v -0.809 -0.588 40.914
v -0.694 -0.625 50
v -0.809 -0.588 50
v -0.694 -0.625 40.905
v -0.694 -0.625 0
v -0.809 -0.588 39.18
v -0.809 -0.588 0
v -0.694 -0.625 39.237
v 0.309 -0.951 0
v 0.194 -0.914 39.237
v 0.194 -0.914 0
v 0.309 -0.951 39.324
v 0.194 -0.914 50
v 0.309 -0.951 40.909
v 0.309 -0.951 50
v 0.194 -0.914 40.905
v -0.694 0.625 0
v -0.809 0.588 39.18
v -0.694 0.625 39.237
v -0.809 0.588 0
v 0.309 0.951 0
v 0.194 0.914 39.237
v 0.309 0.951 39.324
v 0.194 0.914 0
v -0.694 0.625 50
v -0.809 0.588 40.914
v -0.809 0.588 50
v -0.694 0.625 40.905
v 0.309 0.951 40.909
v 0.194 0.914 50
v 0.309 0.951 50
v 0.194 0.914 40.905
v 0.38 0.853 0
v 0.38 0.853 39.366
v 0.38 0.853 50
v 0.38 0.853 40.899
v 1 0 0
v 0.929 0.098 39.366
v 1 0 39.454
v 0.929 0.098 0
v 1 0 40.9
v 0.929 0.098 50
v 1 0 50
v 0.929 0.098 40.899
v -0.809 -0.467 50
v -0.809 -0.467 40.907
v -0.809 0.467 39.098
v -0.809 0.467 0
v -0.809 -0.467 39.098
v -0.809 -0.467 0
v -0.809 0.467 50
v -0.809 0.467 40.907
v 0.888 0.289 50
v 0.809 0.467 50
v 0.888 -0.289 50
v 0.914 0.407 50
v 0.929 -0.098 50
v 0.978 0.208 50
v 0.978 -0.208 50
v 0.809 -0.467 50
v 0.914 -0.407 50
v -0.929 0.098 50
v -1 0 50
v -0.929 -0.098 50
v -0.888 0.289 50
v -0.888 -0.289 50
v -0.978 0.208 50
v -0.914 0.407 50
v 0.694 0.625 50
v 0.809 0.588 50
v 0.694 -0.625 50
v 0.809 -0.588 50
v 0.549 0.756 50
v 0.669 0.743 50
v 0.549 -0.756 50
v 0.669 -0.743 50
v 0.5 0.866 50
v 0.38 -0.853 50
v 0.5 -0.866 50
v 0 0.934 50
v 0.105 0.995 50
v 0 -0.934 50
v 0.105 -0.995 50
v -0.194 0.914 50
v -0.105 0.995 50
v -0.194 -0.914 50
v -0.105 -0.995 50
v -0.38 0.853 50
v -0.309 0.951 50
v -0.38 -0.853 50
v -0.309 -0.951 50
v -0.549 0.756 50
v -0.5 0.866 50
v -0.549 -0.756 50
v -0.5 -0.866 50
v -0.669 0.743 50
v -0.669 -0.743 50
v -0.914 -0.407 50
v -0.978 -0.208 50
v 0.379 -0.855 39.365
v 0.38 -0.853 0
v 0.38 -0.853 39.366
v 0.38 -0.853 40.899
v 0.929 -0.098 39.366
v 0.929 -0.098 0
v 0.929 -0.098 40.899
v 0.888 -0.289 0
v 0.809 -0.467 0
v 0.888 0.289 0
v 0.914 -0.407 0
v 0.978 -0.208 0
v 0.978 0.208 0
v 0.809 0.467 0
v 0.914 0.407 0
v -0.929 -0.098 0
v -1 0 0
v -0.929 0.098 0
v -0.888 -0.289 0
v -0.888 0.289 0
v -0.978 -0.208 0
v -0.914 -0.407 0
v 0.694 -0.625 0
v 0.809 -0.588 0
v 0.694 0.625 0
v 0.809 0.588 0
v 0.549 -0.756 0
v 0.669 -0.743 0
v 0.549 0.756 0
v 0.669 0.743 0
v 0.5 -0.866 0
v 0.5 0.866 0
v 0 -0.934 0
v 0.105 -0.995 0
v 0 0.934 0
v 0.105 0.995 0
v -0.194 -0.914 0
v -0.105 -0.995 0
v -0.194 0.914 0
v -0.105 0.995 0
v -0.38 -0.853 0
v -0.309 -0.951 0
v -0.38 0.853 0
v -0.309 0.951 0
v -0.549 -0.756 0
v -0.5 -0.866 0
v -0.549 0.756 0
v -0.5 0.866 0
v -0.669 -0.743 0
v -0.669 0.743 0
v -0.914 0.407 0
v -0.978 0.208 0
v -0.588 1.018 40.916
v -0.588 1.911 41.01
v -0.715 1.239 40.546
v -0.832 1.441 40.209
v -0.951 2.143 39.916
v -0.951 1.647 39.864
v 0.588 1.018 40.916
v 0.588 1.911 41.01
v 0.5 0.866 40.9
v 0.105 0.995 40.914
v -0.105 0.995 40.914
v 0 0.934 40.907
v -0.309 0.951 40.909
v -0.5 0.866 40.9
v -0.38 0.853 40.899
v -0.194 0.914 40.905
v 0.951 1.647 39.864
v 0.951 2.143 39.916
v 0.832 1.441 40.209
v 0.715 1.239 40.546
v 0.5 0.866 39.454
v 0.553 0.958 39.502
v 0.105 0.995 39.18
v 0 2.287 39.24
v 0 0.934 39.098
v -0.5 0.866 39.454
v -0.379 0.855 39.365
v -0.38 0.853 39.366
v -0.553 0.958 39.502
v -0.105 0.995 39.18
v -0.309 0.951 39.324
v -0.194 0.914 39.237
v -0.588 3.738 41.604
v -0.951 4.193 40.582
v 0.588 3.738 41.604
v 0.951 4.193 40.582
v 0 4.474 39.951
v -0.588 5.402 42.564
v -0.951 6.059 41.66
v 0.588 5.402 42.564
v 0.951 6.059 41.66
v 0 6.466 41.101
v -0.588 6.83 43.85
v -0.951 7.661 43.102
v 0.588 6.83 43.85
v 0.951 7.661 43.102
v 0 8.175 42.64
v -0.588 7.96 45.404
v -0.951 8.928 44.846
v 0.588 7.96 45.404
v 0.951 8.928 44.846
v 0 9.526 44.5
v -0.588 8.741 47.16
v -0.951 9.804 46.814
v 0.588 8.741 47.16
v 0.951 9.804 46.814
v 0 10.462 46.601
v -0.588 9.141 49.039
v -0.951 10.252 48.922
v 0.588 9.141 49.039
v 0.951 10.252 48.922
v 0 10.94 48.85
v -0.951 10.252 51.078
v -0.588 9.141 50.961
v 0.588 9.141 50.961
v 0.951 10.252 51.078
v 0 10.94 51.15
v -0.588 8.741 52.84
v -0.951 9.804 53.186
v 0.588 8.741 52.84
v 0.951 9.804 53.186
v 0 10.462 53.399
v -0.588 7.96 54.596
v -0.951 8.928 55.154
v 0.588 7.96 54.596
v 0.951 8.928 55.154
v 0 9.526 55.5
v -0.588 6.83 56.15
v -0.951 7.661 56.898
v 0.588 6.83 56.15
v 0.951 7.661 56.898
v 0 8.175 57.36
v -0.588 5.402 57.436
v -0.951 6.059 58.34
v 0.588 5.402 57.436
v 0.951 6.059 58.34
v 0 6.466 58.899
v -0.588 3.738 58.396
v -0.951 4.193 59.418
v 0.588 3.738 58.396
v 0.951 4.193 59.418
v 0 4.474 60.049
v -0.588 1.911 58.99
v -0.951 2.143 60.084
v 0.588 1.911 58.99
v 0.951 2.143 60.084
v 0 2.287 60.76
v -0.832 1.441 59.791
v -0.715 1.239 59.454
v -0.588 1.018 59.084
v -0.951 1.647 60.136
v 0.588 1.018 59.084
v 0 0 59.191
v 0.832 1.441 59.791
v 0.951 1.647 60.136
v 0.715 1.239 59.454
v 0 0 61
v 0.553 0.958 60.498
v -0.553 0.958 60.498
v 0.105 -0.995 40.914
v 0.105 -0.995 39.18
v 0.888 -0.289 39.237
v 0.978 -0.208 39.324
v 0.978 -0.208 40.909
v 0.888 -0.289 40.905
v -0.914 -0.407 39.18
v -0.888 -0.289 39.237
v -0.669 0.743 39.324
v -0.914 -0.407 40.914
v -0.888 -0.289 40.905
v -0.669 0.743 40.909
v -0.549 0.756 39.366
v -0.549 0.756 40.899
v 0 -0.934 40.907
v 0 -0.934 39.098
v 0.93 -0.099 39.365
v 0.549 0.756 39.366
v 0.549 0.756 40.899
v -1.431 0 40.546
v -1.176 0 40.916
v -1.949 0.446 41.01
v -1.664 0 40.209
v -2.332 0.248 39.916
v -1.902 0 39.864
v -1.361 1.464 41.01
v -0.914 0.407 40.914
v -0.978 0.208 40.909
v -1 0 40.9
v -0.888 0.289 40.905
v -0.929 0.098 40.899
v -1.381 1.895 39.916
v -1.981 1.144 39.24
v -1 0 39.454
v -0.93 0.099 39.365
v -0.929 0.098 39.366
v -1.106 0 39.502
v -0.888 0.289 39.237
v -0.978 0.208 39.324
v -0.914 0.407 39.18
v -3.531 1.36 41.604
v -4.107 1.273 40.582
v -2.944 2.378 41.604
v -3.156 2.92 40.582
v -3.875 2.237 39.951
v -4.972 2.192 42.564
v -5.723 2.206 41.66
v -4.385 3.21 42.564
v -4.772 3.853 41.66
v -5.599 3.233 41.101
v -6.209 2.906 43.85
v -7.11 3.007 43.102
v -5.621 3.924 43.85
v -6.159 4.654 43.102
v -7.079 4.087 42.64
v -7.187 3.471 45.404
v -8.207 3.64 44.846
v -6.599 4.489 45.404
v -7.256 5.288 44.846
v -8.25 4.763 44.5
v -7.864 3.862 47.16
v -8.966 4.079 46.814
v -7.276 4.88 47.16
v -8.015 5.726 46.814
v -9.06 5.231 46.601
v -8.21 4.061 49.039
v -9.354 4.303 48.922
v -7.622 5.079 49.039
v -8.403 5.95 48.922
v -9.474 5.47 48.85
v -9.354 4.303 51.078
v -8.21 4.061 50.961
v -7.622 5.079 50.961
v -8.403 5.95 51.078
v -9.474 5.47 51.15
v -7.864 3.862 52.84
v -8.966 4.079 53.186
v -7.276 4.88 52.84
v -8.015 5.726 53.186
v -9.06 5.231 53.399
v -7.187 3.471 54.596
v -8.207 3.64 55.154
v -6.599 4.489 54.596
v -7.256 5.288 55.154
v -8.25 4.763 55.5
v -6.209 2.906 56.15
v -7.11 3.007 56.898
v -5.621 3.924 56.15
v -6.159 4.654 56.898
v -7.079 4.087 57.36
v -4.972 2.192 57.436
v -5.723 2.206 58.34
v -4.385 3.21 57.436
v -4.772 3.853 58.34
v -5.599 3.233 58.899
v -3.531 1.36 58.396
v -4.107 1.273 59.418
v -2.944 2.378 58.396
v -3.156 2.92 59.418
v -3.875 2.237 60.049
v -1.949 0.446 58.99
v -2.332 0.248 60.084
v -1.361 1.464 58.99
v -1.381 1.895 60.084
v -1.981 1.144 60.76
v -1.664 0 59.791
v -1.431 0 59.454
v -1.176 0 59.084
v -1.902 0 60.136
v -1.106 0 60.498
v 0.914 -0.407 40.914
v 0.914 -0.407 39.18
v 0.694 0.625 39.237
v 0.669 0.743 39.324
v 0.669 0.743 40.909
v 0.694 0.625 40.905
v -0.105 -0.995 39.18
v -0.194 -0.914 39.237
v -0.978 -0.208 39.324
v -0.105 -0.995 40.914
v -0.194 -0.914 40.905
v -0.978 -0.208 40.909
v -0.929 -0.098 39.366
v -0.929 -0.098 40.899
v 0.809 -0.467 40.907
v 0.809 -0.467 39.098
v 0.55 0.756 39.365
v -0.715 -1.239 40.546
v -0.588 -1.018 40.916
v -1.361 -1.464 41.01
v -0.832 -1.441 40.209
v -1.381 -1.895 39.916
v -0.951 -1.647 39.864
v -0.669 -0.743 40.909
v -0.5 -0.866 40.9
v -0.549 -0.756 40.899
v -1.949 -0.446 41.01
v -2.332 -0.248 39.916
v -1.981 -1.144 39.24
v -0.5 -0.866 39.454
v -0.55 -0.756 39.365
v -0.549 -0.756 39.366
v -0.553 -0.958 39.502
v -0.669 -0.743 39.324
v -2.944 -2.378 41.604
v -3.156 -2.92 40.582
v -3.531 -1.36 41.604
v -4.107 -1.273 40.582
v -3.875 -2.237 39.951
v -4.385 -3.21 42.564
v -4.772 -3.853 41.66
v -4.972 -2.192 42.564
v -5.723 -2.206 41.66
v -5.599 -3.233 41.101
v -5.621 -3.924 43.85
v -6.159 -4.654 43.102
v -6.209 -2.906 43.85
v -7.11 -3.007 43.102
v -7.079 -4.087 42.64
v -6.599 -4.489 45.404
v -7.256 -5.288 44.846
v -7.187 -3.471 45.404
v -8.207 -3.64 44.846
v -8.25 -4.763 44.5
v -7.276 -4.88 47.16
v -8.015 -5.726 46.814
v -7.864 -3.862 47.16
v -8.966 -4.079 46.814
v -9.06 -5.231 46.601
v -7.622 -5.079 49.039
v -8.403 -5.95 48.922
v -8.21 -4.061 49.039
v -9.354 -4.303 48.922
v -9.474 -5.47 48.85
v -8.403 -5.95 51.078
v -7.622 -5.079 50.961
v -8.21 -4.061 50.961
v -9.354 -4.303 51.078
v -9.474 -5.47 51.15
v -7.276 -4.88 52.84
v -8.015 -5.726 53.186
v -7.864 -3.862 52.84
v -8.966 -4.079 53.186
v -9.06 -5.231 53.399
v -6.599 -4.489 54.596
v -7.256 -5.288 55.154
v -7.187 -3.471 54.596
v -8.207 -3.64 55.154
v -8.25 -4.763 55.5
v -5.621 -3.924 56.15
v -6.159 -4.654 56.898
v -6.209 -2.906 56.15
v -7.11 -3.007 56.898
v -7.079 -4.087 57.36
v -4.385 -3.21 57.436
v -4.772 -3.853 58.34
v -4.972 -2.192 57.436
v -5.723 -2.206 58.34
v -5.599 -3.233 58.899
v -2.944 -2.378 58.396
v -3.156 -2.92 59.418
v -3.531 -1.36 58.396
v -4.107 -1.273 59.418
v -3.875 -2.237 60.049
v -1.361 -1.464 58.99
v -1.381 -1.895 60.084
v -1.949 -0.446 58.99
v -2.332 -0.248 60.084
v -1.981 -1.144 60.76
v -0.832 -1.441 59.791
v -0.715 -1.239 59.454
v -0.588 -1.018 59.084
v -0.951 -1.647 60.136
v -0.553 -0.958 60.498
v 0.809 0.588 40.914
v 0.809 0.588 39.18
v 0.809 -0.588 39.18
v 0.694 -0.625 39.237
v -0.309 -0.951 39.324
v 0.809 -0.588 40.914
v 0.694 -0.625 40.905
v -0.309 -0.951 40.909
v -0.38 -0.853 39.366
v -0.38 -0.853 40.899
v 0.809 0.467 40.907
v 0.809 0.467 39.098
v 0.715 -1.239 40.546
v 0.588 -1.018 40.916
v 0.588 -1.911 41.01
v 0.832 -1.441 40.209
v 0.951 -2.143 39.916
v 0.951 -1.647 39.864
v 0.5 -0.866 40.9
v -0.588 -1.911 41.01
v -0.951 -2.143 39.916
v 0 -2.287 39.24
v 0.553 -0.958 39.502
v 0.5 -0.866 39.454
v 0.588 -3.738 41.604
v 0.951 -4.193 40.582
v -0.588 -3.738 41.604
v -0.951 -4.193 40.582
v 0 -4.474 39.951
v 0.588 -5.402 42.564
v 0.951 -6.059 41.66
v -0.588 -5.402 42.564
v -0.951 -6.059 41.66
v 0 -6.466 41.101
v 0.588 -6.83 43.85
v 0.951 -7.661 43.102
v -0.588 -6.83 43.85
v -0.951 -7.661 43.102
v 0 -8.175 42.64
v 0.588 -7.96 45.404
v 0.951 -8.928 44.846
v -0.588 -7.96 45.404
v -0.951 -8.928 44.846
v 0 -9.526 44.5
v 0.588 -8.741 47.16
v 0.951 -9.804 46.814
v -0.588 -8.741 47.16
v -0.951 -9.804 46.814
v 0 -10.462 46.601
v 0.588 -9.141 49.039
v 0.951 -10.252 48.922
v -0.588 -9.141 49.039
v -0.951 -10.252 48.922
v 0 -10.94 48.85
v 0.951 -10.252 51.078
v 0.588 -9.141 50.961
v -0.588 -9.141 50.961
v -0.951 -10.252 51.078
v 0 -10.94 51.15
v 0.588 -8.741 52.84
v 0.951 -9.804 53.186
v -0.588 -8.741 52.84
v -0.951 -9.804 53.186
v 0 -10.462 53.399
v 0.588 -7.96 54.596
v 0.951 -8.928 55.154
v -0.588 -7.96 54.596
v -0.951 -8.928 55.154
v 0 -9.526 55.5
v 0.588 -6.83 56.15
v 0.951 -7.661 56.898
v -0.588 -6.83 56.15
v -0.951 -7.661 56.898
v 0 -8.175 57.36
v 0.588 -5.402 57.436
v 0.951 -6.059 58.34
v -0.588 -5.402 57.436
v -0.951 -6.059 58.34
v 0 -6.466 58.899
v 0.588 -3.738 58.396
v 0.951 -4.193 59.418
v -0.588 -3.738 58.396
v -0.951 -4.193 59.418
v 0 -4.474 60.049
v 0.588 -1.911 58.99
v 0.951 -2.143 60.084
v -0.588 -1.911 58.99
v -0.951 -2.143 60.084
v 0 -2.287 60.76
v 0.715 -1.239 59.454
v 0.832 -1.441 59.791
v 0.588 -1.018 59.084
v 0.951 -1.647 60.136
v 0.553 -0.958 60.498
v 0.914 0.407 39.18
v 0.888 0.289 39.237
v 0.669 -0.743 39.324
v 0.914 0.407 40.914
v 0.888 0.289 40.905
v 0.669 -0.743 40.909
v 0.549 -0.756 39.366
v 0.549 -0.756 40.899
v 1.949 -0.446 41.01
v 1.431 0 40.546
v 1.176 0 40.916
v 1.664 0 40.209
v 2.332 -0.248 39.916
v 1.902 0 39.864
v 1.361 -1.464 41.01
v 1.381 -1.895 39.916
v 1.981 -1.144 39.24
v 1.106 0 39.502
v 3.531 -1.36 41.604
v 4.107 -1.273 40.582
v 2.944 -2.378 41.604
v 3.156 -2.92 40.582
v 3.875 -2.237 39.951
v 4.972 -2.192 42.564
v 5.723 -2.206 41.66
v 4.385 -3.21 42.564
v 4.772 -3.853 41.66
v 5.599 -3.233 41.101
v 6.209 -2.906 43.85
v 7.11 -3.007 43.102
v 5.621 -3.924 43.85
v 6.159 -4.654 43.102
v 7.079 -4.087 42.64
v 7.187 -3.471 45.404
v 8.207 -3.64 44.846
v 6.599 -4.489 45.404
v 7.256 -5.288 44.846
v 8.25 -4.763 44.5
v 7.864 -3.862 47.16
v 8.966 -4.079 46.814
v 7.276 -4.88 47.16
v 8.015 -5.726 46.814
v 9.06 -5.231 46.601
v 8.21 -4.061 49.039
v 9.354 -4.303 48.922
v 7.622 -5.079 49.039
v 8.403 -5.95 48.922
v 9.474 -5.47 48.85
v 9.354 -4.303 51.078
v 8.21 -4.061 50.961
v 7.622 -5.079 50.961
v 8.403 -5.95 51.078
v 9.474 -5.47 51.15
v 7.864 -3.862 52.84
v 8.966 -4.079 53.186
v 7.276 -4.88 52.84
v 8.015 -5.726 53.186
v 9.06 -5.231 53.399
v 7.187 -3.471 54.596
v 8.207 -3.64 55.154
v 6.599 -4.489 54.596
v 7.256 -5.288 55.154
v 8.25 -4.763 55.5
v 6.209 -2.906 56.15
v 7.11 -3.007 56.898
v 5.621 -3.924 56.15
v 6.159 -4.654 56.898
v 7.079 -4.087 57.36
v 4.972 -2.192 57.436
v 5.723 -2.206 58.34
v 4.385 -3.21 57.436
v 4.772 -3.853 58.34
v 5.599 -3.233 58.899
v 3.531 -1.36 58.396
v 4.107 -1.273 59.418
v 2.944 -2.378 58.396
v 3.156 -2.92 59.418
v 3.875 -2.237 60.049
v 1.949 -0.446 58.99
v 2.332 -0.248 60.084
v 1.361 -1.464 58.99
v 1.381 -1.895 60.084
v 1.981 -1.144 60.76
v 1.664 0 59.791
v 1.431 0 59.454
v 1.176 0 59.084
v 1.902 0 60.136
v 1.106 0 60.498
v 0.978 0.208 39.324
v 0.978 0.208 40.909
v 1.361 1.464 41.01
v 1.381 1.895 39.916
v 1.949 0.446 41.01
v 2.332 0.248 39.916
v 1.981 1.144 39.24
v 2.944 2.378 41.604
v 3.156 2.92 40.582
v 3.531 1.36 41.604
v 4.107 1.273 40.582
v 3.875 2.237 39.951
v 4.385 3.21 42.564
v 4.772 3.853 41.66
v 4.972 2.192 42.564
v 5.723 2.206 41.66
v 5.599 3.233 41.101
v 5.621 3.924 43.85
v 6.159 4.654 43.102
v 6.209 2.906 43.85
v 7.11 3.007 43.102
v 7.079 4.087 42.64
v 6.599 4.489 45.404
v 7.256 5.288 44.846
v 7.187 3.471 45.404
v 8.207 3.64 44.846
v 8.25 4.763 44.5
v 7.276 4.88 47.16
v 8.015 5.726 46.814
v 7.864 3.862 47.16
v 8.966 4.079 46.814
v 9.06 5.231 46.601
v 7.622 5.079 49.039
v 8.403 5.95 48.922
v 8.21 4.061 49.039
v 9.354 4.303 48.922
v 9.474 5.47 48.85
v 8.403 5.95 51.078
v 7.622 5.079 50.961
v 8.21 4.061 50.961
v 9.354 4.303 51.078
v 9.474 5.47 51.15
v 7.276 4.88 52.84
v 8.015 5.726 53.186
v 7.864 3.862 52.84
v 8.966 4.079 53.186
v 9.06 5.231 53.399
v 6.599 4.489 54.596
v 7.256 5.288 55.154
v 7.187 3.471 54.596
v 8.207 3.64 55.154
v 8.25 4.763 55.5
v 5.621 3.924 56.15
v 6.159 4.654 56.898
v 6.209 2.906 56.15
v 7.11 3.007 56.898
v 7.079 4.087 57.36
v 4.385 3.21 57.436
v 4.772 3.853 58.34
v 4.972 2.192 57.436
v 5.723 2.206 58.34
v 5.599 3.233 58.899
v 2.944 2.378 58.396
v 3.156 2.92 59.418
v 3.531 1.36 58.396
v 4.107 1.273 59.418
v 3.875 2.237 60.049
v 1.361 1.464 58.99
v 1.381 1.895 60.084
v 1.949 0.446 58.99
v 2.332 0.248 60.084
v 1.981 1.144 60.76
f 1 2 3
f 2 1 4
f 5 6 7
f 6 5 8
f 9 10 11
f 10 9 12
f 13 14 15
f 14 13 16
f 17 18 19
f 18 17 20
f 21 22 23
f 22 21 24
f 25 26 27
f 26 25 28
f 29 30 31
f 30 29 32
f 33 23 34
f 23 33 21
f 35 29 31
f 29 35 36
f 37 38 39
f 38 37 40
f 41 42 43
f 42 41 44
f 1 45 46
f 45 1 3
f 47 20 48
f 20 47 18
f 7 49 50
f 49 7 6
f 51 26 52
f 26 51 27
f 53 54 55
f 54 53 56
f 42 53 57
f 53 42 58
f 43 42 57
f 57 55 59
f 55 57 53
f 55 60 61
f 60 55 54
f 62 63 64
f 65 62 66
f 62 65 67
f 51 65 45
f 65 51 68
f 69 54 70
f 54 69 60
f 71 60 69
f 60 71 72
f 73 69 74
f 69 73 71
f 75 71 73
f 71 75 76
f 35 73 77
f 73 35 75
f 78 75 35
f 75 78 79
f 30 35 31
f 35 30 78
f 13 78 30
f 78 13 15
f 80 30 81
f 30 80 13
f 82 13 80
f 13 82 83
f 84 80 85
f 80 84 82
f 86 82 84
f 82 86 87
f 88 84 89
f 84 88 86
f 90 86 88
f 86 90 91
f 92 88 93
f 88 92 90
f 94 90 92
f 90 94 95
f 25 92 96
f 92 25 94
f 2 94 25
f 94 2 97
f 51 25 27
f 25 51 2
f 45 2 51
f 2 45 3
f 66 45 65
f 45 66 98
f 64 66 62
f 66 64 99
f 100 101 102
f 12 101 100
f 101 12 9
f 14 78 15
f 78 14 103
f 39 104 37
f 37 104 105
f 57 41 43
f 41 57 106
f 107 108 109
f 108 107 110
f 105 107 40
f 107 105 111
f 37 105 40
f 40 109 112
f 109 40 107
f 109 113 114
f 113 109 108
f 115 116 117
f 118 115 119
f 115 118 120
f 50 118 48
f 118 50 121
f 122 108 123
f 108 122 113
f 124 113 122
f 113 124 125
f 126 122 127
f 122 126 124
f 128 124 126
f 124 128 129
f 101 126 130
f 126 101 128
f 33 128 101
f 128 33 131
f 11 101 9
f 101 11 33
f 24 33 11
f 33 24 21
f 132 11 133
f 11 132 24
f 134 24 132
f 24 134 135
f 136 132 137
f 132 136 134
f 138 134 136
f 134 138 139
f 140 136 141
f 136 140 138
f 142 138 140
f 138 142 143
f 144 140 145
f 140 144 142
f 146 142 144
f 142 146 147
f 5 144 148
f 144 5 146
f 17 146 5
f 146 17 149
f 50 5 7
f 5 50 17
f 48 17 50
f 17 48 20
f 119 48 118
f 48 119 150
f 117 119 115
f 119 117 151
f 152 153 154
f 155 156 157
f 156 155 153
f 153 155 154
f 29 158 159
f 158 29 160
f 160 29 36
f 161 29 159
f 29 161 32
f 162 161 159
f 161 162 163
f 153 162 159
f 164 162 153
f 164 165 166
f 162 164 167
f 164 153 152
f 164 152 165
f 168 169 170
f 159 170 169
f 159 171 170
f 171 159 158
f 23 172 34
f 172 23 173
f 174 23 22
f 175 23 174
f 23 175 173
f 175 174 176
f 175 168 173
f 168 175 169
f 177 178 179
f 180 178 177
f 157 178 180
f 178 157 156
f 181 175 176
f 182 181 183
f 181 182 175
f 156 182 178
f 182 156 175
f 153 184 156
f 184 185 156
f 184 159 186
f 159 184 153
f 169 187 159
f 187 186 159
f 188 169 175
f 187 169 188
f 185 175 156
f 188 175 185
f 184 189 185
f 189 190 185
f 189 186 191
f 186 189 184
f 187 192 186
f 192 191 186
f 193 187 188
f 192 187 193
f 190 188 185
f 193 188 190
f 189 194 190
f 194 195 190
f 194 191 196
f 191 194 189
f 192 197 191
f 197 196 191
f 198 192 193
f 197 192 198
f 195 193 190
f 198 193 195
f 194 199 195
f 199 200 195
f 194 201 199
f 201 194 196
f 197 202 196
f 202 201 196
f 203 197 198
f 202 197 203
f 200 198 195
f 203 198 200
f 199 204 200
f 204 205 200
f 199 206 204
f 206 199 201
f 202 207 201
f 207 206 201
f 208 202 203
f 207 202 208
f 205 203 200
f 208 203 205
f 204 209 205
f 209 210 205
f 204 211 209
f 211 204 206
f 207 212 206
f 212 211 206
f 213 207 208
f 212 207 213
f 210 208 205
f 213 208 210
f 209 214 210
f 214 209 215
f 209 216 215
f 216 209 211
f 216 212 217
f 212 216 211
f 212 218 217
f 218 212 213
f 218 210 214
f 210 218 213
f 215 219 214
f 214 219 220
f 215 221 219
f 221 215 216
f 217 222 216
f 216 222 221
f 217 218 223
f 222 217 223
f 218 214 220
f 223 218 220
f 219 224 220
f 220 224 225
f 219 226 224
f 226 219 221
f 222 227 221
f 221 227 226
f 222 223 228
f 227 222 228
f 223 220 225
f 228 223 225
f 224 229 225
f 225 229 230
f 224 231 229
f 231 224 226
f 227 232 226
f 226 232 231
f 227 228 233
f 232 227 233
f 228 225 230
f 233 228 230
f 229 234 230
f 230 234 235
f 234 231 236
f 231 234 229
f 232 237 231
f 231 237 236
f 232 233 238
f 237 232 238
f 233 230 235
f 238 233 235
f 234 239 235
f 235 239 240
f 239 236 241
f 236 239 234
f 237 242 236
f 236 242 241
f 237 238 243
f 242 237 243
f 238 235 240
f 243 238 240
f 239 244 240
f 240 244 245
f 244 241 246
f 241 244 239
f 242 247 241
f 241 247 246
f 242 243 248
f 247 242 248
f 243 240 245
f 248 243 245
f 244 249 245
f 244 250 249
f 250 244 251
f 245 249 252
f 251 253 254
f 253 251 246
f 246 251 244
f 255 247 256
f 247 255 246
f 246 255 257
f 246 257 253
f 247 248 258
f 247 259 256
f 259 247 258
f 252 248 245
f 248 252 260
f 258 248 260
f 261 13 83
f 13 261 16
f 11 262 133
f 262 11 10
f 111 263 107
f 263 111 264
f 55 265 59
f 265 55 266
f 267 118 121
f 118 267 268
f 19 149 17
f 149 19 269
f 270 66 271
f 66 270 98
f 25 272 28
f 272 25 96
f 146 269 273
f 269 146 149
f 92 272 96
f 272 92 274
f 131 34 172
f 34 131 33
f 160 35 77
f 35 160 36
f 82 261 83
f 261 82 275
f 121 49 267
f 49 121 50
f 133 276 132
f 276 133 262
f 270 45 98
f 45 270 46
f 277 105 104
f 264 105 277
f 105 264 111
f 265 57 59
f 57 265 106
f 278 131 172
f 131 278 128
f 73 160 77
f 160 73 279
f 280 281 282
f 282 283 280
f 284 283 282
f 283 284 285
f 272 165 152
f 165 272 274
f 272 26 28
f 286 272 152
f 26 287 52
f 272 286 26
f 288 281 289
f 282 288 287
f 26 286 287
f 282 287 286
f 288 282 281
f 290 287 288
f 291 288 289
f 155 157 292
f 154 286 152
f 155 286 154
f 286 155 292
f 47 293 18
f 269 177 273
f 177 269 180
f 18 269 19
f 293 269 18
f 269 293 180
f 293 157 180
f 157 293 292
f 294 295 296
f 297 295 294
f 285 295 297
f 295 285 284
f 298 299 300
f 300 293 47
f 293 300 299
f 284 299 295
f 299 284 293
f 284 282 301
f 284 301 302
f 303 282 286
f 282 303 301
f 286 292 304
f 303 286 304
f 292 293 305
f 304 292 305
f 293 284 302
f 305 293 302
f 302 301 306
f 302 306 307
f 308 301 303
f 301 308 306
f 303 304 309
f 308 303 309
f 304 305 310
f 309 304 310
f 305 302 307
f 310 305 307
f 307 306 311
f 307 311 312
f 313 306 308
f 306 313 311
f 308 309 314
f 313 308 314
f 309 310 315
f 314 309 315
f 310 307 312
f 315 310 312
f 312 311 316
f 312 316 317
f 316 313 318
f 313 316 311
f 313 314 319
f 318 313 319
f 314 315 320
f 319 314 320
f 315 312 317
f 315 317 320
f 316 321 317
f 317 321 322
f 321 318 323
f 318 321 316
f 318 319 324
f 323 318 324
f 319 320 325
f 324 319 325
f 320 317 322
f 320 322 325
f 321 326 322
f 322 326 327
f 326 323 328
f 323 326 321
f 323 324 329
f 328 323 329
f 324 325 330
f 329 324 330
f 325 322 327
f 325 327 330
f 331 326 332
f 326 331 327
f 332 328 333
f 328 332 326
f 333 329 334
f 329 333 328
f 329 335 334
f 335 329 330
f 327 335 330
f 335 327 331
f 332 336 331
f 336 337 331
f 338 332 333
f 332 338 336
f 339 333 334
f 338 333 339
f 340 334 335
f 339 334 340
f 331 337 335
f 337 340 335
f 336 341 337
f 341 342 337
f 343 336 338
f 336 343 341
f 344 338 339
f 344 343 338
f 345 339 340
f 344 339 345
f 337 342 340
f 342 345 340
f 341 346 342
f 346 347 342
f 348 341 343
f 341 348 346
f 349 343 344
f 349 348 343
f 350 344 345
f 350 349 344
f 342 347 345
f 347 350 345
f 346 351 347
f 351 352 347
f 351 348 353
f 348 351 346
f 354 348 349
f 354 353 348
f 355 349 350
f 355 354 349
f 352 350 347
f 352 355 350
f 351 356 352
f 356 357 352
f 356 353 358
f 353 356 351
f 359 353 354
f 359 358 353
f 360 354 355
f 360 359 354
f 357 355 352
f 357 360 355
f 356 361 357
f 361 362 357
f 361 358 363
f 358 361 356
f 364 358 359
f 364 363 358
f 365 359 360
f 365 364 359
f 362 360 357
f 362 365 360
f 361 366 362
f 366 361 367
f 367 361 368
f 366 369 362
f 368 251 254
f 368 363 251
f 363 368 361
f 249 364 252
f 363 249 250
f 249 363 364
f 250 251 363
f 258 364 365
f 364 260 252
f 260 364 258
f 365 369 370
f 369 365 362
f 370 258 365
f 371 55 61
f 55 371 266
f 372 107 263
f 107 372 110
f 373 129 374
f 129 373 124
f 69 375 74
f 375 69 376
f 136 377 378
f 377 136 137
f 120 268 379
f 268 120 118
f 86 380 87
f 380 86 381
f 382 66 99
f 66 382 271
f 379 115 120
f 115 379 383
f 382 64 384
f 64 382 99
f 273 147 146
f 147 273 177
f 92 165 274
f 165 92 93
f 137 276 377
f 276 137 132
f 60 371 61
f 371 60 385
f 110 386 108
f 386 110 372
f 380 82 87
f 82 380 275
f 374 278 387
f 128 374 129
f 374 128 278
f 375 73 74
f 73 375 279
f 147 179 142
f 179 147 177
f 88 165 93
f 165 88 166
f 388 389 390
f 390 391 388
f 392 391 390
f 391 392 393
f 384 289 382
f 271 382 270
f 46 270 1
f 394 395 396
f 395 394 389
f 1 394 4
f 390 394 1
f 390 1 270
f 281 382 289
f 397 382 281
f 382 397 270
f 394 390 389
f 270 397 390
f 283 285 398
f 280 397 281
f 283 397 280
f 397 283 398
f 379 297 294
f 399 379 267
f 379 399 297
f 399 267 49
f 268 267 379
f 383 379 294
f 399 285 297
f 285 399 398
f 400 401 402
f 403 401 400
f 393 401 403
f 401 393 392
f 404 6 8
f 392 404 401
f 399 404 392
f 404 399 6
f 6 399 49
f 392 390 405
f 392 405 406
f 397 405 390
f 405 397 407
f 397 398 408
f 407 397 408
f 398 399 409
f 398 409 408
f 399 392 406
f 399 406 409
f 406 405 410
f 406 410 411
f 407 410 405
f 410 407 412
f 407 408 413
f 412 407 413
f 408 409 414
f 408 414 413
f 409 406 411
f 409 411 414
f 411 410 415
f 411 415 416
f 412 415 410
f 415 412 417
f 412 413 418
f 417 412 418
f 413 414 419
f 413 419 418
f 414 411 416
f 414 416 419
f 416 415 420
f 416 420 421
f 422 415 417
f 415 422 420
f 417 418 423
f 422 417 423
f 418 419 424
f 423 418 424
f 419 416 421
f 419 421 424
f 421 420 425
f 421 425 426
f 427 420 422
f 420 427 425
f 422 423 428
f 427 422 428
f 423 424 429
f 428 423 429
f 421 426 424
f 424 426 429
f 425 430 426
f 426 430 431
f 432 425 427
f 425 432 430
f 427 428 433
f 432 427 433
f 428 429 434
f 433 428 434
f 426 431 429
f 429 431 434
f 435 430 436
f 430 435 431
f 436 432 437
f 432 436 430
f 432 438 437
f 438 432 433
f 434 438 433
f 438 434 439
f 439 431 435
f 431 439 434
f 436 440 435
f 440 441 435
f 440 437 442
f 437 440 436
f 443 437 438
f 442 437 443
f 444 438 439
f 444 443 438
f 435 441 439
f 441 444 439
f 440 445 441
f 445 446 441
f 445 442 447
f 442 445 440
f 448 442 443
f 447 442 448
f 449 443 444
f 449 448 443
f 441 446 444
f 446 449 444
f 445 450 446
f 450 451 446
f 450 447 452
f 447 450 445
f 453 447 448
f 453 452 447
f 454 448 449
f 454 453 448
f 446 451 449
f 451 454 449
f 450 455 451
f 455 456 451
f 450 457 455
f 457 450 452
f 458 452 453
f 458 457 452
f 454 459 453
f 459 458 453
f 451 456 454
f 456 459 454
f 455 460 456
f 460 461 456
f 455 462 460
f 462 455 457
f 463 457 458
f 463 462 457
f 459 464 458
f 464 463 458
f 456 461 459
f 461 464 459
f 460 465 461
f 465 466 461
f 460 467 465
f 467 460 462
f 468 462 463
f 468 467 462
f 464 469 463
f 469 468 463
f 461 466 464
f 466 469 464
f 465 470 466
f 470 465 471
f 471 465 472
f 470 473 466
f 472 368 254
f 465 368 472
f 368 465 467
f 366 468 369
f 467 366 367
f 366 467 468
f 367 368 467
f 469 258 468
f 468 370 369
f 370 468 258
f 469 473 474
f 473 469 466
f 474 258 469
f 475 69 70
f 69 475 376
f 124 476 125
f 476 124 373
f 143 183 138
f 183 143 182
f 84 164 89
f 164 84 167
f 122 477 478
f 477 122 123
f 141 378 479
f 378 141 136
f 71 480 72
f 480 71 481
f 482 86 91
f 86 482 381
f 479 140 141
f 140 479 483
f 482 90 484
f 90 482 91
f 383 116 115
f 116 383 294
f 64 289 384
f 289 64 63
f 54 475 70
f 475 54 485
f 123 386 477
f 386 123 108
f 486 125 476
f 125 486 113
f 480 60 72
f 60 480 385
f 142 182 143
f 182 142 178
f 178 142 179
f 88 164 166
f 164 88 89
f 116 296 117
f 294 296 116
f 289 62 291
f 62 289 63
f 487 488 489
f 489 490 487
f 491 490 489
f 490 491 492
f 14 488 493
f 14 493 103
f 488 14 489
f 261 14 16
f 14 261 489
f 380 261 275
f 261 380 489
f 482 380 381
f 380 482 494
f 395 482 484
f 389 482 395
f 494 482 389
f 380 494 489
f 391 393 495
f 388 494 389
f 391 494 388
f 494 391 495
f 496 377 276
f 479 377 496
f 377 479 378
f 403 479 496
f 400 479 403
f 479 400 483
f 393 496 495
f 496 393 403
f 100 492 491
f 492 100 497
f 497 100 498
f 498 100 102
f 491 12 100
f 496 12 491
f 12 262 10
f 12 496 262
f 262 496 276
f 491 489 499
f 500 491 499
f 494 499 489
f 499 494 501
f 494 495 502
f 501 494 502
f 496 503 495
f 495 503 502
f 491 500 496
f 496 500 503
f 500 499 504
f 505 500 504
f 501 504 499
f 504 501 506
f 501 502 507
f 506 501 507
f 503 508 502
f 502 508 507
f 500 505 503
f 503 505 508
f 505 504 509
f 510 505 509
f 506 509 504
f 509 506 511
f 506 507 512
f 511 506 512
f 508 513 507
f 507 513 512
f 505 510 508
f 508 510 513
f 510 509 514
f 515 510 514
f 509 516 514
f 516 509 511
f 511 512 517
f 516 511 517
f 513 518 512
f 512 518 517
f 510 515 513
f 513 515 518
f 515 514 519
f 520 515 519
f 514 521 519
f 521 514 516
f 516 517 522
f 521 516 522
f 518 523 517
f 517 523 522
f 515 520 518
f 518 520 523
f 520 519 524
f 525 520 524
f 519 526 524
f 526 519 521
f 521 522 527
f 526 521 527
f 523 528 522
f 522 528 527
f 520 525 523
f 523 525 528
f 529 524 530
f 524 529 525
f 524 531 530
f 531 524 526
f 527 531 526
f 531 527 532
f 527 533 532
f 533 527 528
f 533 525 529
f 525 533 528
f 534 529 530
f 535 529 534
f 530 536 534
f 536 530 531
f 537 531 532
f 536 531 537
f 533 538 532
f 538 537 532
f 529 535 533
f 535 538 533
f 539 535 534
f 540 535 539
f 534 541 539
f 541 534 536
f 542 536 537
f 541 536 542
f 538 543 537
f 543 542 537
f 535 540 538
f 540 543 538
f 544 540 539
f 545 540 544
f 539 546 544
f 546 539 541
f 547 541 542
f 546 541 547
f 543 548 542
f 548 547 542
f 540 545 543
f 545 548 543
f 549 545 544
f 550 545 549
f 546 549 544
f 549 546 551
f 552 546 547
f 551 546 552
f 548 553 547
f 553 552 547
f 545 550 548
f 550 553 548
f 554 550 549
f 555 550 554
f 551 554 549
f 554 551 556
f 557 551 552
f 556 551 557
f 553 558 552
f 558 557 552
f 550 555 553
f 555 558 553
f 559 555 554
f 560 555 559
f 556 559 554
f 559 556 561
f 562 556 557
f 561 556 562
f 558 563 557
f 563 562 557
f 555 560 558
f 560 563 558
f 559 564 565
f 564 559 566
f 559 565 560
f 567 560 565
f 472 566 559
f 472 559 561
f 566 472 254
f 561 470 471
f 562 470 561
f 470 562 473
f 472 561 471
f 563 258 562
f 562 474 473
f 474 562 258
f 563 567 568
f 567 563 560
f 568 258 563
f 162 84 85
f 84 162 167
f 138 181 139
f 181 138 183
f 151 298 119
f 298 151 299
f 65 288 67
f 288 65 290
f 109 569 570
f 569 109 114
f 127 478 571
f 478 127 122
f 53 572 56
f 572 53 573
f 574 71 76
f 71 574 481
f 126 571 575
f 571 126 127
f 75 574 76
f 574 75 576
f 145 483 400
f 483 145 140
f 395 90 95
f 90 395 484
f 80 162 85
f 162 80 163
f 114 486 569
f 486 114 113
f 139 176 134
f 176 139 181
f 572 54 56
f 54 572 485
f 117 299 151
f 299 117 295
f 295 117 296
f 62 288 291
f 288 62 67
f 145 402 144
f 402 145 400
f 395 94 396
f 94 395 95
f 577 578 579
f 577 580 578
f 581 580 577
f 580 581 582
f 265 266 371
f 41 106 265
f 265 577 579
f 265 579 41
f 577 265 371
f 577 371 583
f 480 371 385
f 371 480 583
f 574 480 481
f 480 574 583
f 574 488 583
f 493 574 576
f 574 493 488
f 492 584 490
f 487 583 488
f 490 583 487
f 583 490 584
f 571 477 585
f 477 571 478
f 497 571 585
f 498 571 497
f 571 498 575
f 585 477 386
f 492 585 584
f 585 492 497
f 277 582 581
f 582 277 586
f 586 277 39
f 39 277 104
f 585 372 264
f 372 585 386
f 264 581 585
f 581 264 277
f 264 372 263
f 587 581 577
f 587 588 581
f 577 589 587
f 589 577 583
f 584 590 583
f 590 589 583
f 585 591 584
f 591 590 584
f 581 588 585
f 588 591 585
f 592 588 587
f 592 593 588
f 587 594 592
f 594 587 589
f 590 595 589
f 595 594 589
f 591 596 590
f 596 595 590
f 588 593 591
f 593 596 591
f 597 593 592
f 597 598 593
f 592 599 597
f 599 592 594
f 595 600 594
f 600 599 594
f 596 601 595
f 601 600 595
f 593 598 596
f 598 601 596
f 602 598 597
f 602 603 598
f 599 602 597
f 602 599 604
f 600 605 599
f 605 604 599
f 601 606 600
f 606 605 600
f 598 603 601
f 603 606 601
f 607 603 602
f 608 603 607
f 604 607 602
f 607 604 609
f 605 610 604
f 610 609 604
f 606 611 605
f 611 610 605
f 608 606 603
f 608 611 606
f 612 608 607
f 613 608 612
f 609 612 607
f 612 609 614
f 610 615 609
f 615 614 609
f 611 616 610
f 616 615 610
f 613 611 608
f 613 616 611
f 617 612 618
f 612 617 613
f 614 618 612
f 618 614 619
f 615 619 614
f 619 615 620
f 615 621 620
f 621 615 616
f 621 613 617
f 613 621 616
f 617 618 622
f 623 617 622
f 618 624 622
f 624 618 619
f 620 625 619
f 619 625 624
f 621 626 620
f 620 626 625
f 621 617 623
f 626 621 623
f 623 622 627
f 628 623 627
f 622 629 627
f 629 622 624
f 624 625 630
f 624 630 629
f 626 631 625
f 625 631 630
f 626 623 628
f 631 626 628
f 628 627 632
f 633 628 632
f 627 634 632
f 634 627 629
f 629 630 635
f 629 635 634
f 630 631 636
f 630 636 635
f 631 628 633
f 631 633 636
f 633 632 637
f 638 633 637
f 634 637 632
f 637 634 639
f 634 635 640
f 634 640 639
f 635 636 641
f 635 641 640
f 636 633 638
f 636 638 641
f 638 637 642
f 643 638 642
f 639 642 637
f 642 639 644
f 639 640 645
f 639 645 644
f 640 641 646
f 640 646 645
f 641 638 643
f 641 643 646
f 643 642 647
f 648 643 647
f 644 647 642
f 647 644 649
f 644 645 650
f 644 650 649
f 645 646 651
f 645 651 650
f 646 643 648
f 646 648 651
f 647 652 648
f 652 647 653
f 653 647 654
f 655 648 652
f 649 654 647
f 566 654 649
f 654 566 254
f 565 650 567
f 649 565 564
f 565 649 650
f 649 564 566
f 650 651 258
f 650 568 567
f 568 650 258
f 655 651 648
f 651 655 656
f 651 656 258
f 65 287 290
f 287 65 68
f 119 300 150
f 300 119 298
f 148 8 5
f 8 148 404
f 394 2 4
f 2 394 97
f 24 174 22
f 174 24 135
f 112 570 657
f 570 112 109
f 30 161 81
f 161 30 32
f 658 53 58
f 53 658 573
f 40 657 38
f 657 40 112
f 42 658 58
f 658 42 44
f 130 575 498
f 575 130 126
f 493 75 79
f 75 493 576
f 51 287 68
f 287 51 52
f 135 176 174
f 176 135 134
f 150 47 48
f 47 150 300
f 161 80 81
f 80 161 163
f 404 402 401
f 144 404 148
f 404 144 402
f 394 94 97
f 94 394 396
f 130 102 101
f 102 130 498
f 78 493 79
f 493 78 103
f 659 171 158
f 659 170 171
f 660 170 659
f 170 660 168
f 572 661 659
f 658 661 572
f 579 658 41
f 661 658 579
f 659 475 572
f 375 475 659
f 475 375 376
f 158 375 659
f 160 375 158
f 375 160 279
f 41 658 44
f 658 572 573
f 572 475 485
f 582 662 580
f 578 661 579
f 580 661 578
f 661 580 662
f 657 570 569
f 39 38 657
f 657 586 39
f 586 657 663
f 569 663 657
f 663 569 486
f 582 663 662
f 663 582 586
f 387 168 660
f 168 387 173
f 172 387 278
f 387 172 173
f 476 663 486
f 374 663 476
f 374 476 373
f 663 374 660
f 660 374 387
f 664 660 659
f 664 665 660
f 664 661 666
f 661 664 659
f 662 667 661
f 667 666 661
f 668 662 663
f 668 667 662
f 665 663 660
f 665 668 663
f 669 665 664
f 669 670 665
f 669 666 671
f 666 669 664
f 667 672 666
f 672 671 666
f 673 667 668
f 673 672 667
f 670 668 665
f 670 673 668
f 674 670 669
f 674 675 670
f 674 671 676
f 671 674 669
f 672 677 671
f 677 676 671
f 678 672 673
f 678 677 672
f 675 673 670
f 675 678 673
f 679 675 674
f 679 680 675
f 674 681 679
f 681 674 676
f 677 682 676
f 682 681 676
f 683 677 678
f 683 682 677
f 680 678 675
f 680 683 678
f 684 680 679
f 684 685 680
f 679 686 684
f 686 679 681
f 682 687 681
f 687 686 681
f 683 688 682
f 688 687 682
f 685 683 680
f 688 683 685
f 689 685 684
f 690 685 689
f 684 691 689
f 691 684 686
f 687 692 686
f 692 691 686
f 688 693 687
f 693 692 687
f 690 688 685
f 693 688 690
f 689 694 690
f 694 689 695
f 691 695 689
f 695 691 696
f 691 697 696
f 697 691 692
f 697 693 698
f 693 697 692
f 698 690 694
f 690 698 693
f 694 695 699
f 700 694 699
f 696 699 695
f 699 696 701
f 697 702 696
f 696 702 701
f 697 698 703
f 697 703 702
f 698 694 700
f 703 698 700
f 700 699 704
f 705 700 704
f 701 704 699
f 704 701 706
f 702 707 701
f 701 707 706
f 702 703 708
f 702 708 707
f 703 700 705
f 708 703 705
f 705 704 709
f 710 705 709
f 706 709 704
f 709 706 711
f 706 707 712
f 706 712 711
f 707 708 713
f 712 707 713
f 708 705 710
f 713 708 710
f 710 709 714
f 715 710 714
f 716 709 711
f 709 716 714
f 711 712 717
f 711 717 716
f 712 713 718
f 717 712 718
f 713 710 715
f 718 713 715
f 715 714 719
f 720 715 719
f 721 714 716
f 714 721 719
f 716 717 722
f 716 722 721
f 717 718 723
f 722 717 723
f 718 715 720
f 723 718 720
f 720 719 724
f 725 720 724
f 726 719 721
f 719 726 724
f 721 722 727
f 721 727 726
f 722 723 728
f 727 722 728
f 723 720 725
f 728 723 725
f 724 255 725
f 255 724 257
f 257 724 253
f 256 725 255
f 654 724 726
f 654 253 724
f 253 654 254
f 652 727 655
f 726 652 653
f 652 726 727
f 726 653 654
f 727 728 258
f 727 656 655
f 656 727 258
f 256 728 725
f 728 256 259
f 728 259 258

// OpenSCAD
// Parameters for the hook-shaped rod
rod_diameter = 2; // Diameter of the rod
rod_length = 50;  // Length of the straight section
hook_radius = 10; // Radius of the hook
hook_angle = 180; // Angle of the hook curve

// Function to create a single hook-shaped rod
module hook_shaped_rod() {
    // Straight section of the rod
    translate([0, 0, rod_length / 2])
        cylinder(h = rod_length, r = rod_diameter / 2, center = true);

    // Hook section of the rod
    translate([0, 0, rod_length])
        rotate([0, 90, 0])
        rotate_extrude(angle = hook_angle)
            translate([hook_radius, 0, 0])
                circle(r = rod_diameter / 2);
}

// Generate all six hook-shaped rods in a simple, non-overlapping arrangement
for (i = [0:5]) {
    rotate([0, 0, i * 60]) // Rotate each rod by 60 degrees around the Z-axis
        translate([0, 0, 0]) // Ensure no overlapping or complex patterns
            hook_shaped_rod();
}
